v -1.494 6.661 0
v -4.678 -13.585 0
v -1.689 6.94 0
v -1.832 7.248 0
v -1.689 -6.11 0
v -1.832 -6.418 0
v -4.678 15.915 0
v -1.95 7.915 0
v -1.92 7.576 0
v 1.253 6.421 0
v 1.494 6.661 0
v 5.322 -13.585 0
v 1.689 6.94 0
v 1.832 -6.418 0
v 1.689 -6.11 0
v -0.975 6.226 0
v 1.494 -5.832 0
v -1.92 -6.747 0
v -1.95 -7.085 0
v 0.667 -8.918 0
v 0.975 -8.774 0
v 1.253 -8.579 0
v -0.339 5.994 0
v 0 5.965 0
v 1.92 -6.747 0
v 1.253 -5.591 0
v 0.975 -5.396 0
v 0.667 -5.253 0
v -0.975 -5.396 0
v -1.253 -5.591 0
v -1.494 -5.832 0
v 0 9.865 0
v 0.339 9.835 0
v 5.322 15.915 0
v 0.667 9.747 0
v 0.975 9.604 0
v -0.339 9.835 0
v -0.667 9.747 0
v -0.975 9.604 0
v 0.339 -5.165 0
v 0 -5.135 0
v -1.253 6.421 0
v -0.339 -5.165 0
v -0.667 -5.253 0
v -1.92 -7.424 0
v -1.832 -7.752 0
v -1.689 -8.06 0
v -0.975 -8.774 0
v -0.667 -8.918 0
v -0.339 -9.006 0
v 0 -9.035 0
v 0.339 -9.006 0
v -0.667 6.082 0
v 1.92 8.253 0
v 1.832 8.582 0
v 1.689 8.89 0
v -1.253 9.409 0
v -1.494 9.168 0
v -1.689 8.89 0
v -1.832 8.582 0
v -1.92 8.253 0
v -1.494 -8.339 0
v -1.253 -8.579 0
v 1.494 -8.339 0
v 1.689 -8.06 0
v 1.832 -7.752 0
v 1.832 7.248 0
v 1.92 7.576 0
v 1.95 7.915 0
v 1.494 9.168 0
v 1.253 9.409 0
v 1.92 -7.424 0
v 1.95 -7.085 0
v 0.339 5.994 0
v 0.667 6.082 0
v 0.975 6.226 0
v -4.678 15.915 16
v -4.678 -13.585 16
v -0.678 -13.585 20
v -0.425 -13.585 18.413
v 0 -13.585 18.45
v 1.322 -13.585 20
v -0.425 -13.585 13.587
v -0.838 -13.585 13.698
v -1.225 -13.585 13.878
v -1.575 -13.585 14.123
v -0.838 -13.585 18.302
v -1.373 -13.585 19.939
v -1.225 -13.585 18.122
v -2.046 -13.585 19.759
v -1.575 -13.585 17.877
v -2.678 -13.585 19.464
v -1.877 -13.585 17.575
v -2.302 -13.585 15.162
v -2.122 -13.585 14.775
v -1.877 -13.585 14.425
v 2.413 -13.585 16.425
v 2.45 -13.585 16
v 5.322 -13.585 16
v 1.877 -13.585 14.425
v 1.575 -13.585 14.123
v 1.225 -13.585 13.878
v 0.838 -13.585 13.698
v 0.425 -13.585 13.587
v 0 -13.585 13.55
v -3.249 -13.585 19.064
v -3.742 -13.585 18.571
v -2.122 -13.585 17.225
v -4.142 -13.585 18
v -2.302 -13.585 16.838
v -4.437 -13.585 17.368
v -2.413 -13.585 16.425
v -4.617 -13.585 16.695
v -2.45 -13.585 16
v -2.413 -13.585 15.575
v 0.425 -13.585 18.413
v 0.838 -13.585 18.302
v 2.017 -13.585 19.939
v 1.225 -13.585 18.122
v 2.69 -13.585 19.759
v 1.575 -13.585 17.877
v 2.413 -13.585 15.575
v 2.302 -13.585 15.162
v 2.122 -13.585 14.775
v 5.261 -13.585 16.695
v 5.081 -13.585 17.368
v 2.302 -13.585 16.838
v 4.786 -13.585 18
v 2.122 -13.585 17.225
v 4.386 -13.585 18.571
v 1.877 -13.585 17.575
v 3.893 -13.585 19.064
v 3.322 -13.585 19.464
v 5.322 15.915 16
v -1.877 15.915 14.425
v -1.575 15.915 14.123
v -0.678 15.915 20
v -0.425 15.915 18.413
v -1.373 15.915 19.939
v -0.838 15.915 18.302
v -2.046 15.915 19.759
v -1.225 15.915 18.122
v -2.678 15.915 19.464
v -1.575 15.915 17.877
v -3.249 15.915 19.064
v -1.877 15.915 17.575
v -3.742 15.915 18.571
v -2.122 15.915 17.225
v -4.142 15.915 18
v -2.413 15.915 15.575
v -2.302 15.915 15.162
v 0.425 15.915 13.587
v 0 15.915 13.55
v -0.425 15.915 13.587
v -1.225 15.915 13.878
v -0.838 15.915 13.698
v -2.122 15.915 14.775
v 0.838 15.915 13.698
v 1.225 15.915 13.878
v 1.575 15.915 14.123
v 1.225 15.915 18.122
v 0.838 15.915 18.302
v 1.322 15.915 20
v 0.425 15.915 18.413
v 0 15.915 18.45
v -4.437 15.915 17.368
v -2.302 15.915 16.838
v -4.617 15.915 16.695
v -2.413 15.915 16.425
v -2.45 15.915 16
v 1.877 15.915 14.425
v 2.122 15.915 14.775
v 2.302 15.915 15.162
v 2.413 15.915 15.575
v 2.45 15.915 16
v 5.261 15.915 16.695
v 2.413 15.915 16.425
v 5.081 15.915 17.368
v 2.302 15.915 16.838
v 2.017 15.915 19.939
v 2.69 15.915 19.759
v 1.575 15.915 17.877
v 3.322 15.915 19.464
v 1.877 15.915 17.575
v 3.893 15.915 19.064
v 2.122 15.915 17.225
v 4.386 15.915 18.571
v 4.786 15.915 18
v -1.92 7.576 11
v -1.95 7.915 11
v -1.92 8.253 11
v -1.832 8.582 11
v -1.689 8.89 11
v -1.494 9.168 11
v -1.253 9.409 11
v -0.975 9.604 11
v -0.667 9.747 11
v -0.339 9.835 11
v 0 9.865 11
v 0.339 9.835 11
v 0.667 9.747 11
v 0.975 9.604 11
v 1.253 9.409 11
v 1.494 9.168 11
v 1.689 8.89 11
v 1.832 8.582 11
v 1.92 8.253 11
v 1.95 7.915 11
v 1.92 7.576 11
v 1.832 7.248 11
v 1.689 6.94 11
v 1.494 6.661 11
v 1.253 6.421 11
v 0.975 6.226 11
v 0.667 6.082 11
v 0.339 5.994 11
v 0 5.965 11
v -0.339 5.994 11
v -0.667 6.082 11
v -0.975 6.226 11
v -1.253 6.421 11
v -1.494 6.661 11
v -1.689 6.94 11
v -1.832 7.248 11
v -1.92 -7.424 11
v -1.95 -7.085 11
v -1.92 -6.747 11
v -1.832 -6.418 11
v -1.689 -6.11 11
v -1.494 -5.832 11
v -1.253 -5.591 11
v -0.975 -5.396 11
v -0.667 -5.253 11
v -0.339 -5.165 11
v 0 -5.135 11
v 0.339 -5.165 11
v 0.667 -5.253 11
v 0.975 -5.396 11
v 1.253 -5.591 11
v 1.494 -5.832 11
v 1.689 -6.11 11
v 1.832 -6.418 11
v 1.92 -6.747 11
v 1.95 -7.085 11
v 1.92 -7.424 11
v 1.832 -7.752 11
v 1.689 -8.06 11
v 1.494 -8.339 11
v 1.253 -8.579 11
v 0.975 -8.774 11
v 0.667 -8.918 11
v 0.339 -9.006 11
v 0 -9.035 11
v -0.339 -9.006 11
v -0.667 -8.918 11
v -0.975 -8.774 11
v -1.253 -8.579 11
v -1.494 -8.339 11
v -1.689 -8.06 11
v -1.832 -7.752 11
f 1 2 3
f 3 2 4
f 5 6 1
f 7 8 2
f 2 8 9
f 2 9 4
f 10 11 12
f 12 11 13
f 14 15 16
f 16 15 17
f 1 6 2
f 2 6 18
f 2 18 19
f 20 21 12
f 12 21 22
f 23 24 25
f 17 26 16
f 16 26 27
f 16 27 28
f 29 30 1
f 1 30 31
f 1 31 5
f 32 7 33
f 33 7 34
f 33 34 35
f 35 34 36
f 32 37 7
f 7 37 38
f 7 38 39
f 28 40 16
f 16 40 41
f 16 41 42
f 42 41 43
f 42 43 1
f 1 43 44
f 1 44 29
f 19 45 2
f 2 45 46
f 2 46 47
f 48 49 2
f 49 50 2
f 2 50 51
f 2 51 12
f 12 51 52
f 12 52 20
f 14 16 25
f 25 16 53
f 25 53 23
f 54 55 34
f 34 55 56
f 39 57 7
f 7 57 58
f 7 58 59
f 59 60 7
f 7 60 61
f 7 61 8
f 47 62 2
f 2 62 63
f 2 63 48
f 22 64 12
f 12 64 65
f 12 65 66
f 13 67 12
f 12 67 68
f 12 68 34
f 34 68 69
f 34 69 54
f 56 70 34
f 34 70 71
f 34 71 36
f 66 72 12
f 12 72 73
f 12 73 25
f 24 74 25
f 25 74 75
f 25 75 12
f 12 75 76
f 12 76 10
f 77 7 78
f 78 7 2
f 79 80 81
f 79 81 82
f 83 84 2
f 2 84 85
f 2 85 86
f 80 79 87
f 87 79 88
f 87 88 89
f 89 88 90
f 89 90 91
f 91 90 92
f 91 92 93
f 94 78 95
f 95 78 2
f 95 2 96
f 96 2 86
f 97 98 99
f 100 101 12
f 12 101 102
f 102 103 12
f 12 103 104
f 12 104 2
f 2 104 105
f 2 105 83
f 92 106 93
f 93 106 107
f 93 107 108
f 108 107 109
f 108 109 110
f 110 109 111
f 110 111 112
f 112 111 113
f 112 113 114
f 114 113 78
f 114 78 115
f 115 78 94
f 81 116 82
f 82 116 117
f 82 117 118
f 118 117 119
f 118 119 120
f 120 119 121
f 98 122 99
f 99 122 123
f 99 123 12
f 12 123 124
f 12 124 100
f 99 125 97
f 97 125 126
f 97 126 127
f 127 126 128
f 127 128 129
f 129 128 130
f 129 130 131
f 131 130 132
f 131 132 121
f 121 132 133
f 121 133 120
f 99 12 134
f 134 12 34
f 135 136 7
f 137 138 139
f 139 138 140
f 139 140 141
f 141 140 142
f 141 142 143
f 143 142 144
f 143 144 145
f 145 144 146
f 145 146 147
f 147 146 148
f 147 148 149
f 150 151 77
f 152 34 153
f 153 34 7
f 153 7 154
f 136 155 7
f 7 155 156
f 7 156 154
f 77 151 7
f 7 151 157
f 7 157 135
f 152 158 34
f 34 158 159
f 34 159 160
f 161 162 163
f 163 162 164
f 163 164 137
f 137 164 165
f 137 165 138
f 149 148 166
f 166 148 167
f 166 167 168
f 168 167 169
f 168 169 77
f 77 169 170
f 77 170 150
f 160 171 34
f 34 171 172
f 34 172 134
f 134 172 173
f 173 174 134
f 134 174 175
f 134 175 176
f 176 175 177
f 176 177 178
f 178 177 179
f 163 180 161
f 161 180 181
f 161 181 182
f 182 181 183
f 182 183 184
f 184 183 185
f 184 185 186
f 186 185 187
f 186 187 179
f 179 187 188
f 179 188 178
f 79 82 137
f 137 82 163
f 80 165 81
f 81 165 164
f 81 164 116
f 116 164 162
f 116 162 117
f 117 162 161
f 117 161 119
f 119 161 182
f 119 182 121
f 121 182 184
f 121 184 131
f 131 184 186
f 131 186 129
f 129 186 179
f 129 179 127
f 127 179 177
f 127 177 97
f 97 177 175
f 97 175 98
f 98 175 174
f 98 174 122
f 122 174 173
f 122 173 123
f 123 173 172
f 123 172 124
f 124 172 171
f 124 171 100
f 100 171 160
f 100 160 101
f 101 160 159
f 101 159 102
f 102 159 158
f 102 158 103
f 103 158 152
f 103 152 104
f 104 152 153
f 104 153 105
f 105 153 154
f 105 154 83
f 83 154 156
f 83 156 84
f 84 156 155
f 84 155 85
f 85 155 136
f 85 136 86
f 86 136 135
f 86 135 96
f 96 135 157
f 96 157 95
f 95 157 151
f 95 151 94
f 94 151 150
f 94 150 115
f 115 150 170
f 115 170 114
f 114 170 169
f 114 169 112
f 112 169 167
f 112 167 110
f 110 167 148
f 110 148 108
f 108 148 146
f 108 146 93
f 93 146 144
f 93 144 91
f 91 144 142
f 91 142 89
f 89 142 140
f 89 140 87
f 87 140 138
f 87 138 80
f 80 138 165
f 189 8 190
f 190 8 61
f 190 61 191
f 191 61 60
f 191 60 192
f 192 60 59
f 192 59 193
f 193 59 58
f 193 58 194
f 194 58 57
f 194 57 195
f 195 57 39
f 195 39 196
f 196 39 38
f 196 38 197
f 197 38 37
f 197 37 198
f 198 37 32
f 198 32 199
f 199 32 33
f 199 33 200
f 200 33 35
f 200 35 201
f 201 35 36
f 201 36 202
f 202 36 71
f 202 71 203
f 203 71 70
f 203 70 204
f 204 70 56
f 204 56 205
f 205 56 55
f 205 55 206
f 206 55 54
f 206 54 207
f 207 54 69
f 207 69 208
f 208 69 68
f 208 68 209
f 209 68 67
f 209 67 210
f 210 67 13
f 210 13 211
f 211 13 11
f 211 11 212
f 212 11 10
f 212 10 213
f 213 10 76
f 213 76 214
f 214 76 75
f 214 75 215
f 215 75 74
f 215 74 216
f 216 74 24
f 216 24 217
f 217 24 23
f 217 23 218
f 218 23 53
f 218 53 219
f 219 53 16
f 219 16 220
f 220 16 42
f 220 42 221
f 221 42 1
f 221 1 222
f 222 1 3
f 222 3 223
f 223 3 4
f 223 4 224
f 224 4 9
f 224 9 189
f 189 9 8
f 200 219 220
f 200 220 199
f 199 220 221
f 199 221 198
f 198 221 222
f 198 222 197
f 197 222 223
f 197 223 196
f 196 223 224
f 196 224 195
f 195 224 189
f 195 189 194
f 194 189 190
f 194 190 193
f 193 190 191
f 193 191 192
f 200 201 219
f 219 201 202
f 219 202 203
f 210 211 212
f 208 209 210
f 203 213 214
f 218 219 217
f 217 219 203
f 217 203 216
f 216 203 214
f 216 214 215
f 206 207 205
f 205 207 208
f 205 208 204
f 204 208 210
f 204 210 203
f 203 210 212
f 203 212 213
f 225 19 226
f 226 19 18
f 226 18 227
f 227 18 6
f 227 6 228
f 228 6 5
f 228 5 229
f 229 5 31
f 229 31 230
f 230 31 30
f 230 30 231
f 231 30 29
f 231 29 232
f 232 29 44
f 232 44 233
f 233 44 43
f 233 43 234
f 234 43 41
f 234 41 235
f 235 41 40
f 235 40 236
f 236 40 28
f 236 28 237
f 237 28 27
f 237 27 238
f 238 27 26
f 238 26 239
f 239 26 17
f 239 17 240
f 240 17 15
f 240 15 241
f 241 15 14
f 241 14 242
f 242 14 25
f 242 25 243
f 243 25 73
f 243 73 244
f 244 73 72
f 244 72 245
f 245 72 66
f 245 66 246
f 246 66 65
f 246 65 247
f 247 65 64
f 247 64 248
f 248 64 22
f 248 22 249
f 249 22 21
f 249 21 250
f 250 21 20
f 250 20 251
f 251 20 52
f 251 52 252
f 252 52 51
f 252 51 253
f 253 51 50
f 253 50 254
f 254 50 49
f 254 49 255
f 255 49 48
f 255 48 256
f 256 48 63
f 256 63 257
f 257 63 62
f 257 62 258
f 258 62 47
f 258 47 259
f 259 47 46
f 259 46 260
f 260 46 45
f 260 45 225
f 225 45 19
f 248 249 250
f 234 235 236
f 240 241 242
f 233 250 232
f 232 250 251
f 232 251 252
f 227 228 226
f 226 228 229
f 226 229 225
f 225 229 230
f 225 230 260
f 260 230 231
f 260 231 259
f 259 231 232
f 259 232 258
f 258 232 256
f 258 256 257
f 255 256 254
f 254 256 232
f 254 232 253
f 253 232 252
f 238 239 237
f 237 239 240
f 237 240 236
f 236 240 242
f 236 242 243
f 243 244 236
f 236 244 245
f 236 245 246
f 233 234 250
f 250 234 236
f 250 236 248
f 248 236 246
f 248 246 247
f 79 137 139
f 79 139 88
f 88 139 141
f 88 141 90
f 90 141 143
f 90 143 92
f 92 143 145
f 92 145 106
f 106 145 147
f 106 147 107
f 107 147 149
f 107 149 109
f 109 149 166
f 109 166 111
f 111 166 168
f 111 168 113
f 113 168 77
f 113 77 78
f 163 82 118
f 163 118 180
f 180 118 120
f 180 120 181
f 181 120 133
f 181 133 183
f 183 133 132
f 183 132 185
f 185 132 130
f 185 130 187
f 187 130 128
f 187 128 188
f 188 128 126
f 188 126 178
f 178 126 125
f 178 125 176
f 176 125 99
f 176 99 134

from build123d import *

# Parameters (mm, degrees)
SKETCH1_W      = 10
SKETCH1_H      = 29.5
EXTRUDE1_DEPTH = 20
SKETCH2_R      = 2.45
EXTRUDE2_DEPTH = 30.5
SKETCH4_R      = 1.95
EXTRUDE3_DEPTH = 11
FILLET1_R      = 4


with BuildPart() as part:
    # Sketch1 → Extrude1 (new body)
    with BuildSketch(Plane.XY):
        with Locations((0.322019203, 1.164845717)):
            Rectangle(SKETCH1_W, SKETCH1_H)
    extrude(amount=EXTRUDE1_DEPTH)

    # Sketch2 → Extrude2 (cut, through all)
    with BuildSketch(Plane(origin=(0, 15.914845717, 0), x_dir=(-1, 0, 0), z_dir=(0, 1, 0))):
        with Locations((0, 16)):
            Circle(SKETCH2_R)
    extrude(amount=-EXTRUDE2_DEPTH, mode=Mode.SUBTRACT)

    # Sketch4 → Extrude3 (cut)
    with BuildSketch(Plane.XY):
        with Locations((0, 7.914845717)):
            Circle(SKETCH4_R)
        with Locations((0, -7.085154283)):
            Circle(SKETCH4_R)
    extrude(amount=EXTRUDE3_DEPTH, mode=Mode.SUBTRACT)

    # Fillet1
    fillet1_edges = [part.edges().sort_by_distance(p)[0] for p in [
        (5.322019203, 1.164845717, 20),
        (-4.677980797, 1.164845717, 20),
    ]]
    fillet(fillet1_edges, radius=FILLET1_R)


solid = part.part
